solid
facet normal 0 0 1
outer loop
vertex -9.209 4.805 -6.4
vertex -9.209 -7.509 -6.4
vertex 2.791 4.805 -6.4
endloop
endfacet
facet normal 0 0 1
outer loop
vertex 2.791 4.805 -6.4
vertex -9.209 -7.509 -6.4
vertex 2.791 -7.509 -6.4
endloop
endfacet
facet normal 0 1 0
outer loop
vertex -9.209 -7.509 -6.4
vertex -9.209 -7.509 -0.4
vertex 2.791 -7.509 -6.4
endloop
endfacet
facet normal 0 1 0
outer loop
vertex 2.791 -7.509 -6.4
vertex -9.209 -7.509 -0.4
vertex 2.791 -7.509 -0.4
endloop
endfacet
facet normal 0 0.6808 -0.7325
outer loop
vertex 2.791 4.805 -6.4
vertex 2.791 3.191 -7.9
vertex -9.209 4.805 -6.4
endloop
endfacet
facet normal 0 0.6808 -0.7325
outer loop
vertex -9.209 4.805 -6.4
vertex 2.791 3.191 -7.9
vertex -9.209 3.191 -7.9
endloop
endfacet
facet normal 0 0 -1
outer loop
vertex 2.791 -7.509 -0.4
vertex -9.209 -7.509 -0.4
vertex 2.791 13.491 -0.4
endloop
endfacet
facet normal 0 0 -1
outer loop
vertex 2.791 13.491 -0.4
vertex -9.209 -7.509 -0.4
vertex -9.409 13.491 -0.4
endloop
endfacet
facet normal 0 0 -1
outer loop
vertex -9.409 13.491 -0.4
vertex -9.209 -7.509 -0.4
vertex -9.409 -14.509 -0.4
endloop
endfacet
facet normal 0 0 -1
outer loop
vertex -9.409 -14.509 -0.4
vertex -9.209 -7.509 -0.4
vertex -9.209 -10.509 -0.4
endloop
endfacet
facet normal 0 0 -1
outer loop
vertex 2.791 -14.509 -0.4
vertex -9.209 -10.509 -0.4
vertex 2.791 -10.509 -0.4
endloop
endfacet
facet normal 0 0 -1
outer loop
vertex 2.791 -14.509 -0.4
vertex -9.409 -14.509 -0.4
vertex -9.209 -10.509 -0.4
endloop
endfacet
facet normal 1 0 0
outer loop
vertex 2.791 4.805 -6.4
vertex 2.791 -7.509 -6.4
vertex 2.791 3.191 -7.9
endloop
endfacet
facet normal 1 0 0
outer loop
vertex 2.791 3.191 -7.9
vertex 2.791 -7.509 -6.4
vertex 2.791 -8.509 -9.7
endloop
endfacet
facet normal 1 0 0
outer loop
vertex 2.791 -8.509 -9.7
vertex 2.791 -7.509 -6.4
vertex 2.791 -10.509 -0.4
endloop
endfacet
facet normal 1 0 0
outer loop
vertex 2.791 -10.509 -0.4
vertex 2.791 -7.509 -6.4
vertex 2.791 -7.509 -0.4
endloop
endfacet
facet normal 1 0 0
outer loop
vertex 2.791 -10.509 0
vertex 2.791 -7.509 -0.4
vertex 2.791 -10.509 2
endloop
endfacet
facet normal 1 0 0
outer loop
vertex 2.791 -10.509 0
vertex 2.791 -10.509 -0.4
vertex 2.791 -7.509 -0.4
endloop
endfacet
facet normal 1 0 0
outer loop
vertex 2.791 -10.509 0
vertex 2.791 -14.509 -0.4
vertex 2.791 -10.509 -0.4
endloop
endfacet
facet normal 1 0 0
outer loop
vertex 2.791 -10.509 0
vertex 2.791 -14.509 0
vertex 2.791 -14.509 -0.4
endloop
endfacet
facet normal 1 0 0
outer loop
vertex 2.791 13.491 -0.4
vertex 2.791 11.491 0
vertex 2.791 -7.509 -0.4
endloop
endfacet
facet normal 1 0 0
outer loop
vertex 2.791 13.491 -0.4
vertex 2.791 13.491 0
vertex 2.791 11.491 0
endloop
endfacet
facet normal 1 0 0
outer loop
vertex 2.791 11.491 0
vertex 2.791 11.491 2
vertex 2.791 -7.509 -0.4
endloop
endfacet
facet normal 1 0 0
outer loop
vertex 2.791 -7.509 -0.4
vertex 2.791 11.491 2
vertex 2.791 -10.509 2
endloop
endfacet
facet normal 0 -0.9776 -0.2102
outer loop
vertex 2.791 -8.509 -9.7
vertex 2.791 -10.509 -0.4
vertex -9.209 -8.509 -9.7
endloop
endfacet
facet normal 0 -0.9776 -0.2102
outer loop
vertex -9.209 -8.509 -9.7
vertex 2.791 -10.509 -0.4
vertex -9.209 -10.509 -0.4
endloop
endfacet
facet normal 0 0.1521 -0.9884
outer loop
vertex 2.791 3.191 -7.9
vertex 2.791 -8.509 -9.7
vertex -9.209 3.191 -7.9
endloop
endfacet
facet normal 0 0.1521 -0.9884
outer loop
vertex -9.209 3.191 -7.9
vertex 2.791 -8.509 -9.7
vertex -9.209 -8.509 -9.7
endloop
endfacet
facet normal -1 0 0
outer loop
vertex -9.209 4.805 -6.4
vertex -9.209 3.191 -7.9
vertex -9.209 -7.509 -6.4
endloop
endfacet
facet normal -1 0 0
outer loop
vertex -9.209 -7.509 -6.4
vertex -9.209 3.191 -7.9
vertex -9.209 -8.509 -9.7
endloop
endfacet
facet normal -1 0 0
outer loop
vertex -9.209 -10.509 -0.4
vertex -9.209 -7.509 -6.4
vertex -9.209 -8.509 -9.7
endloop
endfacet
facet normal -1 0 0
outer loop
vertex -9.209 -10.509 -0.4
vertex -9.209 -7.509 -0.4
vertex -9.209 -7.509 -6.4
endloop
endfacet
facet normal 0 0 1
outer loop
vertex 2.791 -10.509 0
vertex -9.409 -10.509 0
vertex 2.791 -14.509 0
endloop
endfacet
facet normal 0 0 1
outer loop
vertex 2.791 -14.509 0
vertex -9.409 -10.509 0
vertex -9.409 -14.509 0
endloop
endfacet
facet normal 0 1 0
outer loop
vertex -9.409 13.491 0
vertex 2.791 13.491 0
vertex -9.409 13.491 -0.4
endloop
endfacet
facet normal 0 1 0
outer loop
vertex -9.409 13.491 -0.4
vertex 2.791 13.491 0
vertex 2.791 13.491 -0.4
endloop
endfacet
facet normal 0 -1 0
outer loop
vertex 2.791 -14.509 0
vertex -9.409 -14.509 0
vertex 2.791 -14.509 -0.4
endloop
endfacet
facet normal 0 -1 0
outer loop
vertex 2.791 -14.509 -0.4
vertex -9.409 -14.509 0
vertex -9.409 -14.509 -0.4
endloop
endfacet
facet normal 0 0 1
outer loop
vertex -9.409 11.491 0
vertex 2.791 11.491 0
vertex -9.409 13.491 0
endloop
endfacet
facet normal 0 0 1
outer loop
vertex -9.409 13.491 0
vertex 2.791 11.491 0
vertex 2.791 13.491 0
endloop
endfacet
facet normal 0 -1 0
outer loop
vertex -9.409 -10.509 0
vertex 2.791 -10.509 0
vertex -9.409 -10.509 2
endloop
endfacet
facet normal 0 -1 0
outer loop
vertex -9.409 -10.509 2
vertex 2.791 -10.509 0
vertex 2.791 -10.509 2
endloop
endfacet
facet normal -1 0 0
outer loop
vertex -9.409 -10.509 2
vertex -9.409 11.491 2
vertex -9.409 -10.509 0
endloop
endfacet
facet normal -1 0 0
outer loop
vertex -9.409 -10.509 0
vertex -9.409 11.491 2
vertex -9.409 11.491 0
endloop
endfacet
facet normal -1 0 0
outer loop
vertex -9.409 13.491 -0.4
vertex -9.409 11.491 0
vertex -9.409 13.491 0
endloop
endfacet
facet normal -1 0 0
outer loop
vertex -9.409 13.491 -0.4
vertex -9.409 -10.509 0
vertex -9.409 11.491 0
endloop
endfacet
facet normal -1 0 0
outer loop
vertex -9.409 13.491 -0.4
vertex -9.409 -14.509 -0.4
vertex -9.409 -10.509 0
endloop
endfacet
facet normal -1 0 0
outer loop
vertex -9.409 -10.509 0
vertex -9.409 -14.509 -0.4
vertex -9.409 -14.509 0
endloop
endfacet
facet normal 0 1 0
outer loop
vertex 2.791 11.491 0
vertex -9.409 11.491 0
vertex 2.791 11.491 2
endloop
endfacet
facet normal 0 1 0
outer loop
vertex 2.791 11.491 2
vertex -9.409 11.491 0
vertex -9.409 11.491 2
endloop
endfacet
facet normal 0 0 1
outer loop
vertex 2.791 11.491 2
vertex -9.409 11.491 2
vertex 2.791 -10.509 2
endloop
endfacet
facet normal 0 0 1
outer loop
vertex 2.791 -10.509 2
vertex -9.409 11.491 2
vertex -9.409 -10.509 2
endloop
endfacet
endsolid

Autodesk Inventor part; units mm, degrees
ref_plane "YZ Plane" through (0, 0, 0) normal (1, 0, 0) x (0, 1, 0)
ref_plane "XZ Plane" through (0, 0, 0) normal (0, 1, 0) x (-1, 0, 0)
ref_plane "XY Plane" through (0, 0, 0) normal (0, 0, 1) x (1, 0, 0)
sketch "Sketch1" plane through (0, 0, 0) normal (0, 0, 1) x (1, 0, 0)
  line L0 (-9.4085, 11.4915) -> (2.7915, 11.4915)
  line L1 (2.7915, 11.4915) -> (2.7915, -10.5085)
  line L2 (2.7915, -10.5085) -> (-9.4085, -10.5085)
  line L3 (-9.4085, -10.5085) -> (-9.4085, 11.4915)
  point P0 (0, 0)
  dimension "d0" = 22
  dimension "d1" = 12.2
extrude "Extrusion1" add sketch "Sketch1" along normal blind 2
sketch "Sketch2" plane through (0, 0, 0) normal (0, 0, -1) x (-1, 0, 0)
  line L0 (-2.7915, -14.5085) -> (9.4085, -14.5085)
  line L1 (9.4085, -14.5085) -> (9.4085, 13.4915)
  line L2 (9.4085, 13.4915) -> (-2.7915, 13.4915)
  line L3 (-2.7915, 13.4915) -> (-2.7915, -14.5085)
  line L4 (9.4085, -10.5085) -> (9.4085, 11.4915) projected
  line L5 (-2.7915, 11.4915) -> (-2.7915, -10.5085) projected
  line L6 (9.4085, 11.4915) -> (-2.7915, 11.4915) projected
  line L7 (-2.7915, -10.5085) -> (9.4085, -10.5085) projected
  point P0 (0, 0)
  dimension "d4" = 2
  dimension "d5" = 4
extrude "Extrusion2" add sketch "Sketch2" along normal blind 0.4
sketch "Sketch3" plane through (2.7915, -10.5085, 2) normal (1, 0, 0) x (0, 0, -1)
  line L0 (0, 0) -> (0, 22) projected
  line L1 (2, 22) -> (0, 22) projected
  line L2 (2.4, 24) -> (2.4, -4) projected
  line L3 (2.4, 0) -> (11.7, 2)
  line L4 (11.7, 2) -> (9.9, 13.7)
  line L5 (9.9, 13.7) -> (2.4, 21.767)
  line L6 (2.4, 0) -> (2.4, 21.767)
  point P0 (2, 10.5085)
  dimension "d8" = 9.9
  dimension "d9" = 11.7
  dimension "d10" = 8.3
  dimension "d11" = 20
extrude "Extrusion3" add sketch "Sketch3" against normal blind 12
sketch "Sketch4" plane through (-9.2085, -10.5085, 2) normal (-1, 0, 0) x (0, 0, 1)
  line L0 (-2.4, -4) -> (-2.4, 24) projected
  line L1 (-2.4, 22) -> (-8.4, 22)
  line L2 (-8.4, 22) -> (-8.4, 3)
  line L3 (-8.4, 3) -> (-2.4, 3)
  line L4 (-2.4, 3) -> (-2.4, 22)
  line L5 (-2, 22) -> (0, 22) projected
  point P0 (-2, 10.5085)
  dimension "d14" = 6
  dimension "d15" = 19
extrude "Extrusion4" cut sketch "Sketch4" against normal blind 12
properties part number "button"
